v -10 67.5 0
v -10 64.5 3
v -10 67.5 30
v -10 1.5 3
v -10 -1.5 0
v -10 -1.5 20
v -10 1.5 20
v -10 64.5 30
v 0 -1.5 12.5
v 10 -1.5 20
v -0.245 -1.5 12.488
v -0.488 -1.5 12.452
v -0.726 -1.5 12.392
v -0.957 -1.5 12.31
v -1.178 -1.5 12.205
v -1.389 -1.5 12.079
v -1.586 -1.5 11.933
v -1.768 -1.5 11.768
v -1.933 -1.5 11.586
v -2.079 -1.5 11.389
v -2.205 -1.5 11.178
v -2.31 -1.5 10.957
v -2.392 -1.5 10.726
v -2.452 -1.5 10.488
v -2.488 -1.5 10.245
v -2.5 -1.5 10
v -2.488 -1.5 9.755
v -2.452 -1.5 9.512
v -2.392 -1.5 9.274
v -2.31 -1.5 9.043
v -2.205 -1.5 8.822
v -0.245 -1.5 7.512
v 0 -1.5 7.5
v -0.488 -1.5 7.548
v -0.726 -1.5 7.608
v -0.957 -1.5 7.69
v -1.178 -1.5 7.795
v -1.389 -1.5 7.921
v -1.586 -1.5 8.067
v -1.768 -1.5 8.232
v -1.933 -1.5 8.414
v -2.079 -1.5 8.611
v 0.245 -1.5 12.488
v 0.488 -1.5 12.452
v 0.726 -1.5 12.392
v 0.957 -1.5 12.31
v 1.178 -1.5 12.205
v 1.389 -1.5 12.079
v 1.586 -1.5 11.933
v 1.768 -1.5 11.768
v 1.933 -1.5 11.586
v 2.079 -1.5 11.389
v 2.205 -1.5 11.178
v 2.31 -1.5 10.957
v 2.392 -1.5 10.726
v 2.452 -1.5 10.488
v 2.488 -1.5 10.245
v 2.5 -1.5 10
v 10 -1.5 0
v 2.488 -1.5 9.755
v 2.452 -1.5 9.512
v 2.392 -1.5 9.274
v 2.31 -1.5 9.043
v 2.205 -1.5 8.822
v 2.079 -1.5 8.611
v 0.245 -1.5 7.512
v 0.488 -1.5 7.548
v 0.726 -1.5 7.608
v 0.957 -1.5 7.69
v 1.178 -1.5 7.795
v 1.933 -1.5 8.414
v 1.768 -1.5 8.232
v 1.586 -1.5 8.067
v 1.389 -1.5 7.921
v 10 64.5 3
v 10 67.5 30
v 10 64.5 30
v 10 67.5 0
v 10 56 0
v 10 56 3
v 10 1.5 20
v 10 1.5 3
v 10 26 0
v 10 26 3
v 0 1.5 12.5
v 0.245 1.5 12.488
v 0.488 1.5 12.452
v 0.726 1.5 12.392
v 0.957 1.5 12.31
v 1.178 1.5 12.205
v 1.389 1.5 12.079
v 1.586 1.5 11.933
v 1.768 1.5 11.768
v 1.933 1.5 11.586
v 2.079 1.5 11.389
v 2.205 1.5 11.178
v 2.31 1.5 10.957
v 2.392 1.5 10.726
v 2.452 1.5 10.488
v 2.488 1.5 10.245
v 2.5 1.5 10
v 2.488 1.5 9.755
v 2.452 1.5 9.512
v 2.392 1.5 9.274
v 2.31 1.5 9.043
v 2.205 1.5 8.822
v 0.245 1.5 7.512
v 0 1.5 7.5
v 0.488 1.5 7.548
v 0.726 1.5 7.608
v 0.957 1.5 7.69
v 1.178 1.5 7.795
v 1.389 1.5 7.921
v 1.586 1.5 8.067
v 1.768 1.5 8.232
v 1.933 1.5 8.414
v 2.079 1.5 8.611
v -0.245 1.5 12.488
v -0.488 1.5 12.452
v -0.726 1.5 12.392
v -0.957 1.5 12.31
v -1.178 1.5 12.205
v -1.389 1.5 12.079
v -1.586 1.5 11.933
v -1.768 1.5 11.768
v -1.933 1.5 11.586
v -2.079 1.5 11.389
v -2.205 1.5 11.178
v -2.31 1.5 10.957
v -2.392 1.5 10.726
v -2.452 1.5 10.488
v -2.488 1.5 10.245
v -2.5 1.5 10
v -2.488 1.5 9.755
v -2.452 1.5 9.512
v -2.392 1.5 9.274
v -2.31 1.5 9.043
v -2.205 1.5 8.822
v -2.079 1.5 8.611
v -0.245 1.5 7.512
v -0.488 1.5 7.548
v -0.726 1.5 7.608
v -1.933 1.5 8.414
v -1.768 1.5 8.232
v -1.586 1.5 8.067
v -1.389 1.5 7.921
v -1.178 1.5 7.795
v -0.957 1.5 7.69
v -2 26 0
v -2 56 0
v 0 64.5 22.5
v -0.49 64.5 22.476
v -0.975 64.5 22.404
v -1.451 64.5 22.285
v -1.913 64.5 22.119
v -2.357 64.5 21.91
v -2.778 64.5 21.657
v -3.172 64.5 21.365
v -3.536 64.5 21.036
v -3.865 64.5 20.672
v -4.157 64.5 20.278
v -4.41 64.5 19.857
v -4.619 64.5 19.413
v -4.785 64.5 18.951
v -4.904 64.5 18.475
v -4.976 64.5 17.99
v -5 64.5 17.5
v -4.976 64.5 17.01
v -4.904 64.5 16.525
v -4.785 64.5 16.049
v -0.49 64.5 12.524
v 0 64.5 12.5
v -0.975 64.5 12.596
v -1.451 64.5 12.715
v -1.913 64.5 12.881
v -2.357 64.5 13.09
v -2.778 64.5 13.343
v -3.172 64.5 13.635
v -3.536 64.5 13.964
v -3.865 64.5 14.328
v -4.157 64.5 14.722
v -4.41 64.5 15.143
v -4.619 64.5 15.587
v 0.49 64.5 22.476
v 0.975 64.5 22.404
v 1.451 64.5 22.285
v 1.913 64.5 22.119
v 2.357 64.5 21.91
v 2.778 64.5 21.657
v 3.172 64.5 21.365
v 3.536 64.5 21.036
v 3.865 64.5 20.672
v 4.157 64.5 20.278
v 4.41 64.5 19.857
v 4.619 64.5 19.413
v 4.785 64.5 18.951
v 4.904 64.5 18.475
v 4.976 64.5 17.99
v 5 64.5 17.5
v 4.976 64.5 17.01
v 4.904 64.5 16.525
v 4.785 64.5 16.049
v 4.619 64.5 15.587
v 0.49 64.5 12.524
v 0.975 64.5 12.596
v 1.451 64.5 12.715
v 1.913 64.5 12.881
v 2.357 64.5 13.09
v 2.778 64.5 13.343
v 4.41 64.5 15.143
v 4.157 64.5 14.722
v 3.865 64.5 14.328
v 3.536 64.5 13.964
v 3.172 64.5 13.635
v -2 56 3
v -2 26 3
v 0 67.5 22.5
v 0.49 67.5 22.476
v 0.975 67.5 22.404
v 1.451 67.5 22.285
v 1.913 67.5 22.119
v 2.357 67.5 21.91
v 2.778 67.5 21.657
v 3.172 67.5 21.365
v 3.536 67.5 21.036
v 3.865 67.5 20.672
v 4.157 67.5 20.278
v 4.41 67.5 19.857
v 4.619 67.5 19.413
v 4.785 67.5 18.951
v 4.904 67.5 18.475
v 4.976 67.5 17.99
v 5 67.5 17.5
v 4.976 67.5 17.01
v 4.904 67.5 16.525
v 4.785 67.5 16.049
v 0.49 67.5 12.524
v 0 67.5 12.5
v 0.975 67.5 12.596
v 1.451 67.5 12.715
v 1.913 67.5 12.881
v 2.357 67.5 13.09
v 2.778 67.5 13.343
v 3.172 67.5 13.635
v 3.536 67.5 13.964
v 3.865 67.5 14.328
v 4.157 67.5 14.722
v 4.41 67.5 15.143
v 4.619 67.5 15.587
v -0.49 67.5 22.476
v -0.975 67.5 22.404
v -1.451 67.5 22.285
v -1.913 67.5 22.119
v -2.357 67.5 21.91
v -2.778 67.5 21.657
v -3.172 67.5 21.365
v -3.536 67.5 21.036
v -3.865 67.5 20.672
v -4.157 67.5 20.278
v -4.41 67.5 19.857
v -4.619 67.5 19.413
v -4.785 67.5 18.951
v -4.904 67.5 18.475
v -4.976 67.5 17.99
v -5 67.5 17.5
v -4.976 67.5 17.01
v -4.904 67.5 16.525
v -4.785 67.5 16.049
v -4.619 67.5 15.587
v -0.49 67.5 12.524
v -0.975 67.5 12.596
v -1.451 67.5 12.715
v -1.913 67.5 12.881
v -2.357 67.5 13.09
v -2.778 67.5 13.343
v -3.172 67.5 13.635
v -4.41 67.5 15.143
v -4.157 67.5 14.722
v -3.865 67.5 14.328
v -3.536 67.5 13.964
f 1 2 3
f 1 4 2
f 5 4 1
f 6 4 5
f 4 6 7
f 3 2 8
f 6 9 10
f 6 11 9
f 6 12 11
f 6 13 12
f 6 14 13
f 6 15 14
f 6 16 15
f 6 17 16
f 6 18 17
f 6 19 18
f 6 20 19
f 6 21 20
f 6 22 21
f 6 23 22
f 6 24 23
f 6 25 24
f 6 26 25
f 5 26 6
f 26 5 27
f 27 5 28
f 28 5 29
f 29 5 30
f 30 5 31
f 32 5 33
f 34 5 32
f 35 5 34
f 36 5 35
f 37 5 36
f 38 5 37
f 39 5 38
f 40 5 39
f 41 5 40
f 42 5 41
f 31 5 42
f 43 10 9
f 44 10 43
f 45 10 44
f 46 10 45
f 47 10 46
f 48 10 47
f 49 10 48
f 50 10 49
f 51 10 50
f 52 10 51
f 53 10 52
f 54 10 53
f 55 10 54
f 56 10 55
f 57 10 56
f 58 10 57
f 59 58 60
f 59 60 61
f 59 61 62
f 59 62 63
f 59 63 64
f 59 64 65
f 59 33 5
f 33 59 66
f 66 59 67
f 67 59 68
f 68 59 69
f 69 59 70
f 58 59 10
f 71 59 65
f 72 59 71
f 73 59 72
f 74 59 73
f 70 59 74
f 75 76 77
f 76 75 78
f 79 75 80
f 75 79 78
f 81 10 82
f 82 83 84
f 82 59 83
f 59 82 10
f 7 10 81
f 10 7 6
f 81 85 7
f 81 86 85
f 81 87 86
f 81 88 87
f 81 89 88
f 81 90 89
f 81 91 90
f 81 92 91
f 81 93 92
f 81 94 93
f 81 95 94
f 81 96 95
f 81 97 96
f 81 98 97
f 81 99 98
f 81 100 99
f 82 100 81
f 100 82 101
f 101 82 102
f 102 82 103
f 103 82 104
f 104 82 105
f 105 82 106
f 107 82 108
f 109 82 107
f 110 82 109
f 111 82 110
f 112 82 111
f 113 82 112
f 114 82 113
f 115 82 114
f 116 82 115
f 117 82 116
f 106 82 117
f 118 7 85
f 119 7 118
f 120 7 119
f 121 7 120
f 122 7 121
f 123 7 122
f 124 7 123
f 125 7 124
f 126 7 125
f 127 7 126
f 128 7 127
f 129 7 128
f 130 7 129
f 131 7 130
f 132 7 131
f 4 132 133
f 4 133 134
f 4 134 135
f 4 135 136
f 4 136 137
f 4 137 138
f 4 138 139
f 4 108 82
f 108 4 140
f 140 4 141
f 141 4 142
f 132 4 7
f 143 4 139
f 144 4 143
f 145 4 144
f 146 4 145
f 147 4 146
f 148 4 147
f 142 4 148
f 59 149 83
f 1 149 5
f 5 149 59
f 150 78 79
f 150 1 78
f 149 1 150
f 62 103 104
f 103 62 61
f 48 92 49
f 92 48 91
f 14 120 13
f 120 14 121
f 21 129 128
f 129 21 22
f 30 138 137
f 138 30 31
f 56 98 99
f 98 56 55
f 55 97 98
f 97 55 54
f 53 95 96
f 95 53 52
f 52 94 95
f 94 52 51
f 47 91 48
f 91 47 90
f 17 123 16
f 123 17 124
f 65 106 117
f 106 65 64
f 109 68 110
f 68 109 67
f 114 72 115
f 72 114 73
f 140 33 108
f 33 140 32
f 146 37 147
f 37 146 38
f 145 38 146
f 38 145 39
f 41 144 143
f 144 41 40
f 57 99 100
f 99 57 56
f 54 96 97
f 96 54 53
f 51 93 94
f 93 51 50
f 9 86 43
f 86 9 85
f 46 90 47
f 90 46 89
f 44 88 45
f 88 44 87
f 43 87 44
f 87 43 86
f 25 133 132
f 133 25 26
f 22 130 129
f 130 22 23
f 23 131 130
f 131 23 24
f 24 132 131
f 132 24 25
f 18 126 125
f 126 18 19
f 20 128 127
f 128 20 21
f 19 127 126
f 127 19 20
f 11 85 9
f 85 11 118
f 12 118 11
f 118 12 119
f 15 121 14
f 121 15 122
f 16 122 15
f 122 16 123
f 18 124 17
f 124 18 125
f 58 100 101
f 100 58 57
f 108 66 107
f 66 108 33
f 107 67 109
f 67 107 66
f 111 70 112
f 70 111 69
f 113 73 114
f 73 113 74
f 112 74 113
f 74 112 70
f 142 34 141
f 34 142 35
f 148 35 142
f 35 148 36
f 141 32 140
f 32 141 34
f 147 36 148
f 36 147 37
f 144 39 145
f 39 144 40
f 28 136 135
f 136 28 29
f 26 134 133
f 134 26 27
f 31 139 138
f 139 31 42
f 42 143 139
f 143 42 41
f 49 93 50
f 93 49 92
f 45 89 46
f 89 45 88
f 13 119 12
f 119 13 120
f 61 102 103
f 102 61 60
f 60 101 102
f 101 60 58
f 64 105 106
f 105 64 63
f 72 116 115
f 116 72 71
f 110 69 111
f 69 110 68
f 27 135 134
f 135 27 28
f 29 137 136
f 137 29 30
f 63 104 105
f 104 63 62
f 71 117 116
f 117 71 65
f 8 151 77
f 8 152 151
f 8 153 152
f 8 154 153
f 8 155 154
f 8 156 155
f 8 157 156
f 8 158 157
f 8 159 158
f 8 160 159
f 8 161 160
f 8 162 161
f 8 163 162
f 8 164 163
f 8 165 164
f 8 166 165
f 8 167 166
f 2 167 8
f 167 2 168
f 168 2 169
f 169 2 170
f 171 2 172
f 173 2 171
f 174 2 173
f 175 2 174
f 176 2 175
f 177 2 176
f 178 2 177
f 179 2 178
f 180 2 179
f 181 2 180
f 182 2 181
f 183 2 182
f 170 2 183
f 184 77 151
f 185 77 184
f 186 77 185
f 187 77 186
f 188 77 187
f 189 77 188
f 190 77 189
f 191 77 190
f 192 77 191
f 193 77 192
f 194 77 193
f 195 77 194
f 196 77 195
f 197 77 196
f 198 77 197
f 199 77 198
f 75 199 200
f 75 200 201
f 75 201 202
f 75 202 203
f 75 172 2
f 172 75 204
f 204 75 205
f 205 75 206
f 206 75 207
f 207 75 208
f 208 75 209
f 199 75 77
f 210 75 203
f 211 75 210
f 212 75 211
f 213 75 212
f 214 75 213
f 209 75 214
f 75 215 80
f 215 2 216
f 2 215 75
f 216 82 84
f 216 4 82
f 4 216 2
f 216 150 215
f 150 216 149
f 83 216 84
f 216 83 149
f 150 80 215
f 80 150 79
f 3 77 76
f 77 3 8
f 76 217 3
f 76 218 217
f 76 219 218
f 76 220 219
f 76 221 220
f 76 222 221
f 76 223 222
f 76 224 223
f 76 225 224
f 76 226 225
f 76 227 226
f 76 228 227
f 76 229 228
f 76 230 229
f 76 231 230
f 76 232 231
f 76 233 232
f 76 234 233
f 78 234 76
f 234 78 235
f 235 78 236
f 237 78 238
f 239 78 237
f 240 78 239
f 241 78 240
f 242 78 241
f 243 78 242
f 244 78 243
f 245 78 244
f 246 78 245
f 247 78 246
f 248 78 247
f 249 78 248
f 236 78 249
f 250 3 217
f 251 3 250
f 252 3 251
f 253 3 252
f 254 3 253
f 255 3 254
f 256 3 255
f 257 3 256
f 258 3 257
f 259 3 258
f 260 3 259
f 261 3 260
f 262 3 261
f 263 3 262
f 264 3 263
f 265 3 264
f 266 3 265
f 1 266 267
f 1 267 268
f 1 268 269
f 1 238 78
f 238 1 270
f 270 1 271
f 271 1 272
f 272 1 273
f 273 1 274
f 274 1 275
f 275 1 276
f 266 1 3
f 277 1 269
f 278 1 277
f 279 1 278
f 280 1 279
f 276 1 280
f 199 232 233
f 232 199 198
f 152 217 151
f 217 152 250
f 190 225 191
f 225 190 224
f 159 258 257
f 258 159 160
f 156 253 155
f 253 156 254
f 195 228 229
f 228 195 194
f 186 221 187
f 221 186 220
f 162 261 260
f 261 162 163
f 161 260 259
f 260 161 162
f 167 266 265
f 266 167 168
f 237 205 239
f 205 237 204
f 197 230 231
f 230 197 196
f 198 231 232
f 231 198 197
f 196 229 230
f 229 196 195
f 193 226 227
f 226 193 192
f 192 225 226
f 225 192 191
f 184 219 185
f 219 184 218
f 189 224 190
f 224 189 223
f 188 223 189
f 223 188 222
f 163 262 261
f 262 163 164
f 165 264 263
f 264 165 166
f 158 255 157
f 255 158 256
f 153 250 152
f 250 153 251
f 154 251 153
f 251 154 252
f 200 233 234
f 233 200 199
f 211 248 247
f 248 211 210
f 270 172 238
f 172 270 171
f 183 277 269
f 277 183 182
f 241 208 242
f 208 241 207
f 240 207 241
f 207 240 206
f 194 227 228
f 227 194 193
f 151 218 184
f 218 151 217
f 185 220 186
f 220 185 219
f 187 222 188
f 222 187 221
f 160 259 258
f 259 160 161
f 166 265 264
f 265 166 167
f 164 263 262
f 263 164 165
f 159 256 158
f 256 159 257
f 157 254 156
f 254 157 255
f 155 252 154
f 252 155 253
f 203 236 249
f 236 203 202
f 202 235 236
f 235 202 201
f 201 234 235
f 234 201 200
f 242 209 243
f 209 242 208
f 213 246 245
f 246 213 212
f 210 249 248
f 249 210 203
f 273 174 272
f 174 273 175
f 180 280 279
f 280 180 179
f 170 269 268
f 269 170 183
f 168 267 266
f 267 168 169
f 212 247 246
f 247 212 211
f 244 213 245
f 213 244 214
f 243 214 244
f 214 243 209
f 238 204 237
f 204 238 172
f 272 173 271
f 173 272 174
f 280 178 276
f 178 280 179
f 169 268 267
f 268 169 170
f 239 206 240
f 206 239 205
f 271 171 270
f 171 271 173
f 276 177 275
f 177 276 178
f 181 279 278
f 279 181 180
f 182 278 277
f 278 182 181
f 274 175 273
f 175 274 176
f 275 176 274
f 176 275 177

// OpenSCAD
$fn=64;

face = 20;
height= 30;
cut_out_height=30;
cut_out_width=12;
cut_out_start=26;

thickness = 3;
bridge_length = 63;




rotate([90,0,0])
translate([0,face/2,0])
difference() {
    cube([face,face,thickness],center=true);
    translate([0,0,-3])
    cylinder(100,2.5,2.5);
}
//rotate([0,0,90])
difference(){
    rotate([0,0,90])
    translate([(bridge_length + thickness)/2,0,thickness/2])

cube([bridge_length,face,thickness],center=true);
    
    translate([face/2-cut_out_width,cut_out_start,-2])

cube([face,cut_out_height,thickness*5]);
}

rotate([90,0,0])
translate([0,height/2,-(bridge_length + thickness)])
difference() {
    cube([face,height,thickness],center=true);
    translate([0,2.5,-thickness])
    cylinder(100,5,5);
}
